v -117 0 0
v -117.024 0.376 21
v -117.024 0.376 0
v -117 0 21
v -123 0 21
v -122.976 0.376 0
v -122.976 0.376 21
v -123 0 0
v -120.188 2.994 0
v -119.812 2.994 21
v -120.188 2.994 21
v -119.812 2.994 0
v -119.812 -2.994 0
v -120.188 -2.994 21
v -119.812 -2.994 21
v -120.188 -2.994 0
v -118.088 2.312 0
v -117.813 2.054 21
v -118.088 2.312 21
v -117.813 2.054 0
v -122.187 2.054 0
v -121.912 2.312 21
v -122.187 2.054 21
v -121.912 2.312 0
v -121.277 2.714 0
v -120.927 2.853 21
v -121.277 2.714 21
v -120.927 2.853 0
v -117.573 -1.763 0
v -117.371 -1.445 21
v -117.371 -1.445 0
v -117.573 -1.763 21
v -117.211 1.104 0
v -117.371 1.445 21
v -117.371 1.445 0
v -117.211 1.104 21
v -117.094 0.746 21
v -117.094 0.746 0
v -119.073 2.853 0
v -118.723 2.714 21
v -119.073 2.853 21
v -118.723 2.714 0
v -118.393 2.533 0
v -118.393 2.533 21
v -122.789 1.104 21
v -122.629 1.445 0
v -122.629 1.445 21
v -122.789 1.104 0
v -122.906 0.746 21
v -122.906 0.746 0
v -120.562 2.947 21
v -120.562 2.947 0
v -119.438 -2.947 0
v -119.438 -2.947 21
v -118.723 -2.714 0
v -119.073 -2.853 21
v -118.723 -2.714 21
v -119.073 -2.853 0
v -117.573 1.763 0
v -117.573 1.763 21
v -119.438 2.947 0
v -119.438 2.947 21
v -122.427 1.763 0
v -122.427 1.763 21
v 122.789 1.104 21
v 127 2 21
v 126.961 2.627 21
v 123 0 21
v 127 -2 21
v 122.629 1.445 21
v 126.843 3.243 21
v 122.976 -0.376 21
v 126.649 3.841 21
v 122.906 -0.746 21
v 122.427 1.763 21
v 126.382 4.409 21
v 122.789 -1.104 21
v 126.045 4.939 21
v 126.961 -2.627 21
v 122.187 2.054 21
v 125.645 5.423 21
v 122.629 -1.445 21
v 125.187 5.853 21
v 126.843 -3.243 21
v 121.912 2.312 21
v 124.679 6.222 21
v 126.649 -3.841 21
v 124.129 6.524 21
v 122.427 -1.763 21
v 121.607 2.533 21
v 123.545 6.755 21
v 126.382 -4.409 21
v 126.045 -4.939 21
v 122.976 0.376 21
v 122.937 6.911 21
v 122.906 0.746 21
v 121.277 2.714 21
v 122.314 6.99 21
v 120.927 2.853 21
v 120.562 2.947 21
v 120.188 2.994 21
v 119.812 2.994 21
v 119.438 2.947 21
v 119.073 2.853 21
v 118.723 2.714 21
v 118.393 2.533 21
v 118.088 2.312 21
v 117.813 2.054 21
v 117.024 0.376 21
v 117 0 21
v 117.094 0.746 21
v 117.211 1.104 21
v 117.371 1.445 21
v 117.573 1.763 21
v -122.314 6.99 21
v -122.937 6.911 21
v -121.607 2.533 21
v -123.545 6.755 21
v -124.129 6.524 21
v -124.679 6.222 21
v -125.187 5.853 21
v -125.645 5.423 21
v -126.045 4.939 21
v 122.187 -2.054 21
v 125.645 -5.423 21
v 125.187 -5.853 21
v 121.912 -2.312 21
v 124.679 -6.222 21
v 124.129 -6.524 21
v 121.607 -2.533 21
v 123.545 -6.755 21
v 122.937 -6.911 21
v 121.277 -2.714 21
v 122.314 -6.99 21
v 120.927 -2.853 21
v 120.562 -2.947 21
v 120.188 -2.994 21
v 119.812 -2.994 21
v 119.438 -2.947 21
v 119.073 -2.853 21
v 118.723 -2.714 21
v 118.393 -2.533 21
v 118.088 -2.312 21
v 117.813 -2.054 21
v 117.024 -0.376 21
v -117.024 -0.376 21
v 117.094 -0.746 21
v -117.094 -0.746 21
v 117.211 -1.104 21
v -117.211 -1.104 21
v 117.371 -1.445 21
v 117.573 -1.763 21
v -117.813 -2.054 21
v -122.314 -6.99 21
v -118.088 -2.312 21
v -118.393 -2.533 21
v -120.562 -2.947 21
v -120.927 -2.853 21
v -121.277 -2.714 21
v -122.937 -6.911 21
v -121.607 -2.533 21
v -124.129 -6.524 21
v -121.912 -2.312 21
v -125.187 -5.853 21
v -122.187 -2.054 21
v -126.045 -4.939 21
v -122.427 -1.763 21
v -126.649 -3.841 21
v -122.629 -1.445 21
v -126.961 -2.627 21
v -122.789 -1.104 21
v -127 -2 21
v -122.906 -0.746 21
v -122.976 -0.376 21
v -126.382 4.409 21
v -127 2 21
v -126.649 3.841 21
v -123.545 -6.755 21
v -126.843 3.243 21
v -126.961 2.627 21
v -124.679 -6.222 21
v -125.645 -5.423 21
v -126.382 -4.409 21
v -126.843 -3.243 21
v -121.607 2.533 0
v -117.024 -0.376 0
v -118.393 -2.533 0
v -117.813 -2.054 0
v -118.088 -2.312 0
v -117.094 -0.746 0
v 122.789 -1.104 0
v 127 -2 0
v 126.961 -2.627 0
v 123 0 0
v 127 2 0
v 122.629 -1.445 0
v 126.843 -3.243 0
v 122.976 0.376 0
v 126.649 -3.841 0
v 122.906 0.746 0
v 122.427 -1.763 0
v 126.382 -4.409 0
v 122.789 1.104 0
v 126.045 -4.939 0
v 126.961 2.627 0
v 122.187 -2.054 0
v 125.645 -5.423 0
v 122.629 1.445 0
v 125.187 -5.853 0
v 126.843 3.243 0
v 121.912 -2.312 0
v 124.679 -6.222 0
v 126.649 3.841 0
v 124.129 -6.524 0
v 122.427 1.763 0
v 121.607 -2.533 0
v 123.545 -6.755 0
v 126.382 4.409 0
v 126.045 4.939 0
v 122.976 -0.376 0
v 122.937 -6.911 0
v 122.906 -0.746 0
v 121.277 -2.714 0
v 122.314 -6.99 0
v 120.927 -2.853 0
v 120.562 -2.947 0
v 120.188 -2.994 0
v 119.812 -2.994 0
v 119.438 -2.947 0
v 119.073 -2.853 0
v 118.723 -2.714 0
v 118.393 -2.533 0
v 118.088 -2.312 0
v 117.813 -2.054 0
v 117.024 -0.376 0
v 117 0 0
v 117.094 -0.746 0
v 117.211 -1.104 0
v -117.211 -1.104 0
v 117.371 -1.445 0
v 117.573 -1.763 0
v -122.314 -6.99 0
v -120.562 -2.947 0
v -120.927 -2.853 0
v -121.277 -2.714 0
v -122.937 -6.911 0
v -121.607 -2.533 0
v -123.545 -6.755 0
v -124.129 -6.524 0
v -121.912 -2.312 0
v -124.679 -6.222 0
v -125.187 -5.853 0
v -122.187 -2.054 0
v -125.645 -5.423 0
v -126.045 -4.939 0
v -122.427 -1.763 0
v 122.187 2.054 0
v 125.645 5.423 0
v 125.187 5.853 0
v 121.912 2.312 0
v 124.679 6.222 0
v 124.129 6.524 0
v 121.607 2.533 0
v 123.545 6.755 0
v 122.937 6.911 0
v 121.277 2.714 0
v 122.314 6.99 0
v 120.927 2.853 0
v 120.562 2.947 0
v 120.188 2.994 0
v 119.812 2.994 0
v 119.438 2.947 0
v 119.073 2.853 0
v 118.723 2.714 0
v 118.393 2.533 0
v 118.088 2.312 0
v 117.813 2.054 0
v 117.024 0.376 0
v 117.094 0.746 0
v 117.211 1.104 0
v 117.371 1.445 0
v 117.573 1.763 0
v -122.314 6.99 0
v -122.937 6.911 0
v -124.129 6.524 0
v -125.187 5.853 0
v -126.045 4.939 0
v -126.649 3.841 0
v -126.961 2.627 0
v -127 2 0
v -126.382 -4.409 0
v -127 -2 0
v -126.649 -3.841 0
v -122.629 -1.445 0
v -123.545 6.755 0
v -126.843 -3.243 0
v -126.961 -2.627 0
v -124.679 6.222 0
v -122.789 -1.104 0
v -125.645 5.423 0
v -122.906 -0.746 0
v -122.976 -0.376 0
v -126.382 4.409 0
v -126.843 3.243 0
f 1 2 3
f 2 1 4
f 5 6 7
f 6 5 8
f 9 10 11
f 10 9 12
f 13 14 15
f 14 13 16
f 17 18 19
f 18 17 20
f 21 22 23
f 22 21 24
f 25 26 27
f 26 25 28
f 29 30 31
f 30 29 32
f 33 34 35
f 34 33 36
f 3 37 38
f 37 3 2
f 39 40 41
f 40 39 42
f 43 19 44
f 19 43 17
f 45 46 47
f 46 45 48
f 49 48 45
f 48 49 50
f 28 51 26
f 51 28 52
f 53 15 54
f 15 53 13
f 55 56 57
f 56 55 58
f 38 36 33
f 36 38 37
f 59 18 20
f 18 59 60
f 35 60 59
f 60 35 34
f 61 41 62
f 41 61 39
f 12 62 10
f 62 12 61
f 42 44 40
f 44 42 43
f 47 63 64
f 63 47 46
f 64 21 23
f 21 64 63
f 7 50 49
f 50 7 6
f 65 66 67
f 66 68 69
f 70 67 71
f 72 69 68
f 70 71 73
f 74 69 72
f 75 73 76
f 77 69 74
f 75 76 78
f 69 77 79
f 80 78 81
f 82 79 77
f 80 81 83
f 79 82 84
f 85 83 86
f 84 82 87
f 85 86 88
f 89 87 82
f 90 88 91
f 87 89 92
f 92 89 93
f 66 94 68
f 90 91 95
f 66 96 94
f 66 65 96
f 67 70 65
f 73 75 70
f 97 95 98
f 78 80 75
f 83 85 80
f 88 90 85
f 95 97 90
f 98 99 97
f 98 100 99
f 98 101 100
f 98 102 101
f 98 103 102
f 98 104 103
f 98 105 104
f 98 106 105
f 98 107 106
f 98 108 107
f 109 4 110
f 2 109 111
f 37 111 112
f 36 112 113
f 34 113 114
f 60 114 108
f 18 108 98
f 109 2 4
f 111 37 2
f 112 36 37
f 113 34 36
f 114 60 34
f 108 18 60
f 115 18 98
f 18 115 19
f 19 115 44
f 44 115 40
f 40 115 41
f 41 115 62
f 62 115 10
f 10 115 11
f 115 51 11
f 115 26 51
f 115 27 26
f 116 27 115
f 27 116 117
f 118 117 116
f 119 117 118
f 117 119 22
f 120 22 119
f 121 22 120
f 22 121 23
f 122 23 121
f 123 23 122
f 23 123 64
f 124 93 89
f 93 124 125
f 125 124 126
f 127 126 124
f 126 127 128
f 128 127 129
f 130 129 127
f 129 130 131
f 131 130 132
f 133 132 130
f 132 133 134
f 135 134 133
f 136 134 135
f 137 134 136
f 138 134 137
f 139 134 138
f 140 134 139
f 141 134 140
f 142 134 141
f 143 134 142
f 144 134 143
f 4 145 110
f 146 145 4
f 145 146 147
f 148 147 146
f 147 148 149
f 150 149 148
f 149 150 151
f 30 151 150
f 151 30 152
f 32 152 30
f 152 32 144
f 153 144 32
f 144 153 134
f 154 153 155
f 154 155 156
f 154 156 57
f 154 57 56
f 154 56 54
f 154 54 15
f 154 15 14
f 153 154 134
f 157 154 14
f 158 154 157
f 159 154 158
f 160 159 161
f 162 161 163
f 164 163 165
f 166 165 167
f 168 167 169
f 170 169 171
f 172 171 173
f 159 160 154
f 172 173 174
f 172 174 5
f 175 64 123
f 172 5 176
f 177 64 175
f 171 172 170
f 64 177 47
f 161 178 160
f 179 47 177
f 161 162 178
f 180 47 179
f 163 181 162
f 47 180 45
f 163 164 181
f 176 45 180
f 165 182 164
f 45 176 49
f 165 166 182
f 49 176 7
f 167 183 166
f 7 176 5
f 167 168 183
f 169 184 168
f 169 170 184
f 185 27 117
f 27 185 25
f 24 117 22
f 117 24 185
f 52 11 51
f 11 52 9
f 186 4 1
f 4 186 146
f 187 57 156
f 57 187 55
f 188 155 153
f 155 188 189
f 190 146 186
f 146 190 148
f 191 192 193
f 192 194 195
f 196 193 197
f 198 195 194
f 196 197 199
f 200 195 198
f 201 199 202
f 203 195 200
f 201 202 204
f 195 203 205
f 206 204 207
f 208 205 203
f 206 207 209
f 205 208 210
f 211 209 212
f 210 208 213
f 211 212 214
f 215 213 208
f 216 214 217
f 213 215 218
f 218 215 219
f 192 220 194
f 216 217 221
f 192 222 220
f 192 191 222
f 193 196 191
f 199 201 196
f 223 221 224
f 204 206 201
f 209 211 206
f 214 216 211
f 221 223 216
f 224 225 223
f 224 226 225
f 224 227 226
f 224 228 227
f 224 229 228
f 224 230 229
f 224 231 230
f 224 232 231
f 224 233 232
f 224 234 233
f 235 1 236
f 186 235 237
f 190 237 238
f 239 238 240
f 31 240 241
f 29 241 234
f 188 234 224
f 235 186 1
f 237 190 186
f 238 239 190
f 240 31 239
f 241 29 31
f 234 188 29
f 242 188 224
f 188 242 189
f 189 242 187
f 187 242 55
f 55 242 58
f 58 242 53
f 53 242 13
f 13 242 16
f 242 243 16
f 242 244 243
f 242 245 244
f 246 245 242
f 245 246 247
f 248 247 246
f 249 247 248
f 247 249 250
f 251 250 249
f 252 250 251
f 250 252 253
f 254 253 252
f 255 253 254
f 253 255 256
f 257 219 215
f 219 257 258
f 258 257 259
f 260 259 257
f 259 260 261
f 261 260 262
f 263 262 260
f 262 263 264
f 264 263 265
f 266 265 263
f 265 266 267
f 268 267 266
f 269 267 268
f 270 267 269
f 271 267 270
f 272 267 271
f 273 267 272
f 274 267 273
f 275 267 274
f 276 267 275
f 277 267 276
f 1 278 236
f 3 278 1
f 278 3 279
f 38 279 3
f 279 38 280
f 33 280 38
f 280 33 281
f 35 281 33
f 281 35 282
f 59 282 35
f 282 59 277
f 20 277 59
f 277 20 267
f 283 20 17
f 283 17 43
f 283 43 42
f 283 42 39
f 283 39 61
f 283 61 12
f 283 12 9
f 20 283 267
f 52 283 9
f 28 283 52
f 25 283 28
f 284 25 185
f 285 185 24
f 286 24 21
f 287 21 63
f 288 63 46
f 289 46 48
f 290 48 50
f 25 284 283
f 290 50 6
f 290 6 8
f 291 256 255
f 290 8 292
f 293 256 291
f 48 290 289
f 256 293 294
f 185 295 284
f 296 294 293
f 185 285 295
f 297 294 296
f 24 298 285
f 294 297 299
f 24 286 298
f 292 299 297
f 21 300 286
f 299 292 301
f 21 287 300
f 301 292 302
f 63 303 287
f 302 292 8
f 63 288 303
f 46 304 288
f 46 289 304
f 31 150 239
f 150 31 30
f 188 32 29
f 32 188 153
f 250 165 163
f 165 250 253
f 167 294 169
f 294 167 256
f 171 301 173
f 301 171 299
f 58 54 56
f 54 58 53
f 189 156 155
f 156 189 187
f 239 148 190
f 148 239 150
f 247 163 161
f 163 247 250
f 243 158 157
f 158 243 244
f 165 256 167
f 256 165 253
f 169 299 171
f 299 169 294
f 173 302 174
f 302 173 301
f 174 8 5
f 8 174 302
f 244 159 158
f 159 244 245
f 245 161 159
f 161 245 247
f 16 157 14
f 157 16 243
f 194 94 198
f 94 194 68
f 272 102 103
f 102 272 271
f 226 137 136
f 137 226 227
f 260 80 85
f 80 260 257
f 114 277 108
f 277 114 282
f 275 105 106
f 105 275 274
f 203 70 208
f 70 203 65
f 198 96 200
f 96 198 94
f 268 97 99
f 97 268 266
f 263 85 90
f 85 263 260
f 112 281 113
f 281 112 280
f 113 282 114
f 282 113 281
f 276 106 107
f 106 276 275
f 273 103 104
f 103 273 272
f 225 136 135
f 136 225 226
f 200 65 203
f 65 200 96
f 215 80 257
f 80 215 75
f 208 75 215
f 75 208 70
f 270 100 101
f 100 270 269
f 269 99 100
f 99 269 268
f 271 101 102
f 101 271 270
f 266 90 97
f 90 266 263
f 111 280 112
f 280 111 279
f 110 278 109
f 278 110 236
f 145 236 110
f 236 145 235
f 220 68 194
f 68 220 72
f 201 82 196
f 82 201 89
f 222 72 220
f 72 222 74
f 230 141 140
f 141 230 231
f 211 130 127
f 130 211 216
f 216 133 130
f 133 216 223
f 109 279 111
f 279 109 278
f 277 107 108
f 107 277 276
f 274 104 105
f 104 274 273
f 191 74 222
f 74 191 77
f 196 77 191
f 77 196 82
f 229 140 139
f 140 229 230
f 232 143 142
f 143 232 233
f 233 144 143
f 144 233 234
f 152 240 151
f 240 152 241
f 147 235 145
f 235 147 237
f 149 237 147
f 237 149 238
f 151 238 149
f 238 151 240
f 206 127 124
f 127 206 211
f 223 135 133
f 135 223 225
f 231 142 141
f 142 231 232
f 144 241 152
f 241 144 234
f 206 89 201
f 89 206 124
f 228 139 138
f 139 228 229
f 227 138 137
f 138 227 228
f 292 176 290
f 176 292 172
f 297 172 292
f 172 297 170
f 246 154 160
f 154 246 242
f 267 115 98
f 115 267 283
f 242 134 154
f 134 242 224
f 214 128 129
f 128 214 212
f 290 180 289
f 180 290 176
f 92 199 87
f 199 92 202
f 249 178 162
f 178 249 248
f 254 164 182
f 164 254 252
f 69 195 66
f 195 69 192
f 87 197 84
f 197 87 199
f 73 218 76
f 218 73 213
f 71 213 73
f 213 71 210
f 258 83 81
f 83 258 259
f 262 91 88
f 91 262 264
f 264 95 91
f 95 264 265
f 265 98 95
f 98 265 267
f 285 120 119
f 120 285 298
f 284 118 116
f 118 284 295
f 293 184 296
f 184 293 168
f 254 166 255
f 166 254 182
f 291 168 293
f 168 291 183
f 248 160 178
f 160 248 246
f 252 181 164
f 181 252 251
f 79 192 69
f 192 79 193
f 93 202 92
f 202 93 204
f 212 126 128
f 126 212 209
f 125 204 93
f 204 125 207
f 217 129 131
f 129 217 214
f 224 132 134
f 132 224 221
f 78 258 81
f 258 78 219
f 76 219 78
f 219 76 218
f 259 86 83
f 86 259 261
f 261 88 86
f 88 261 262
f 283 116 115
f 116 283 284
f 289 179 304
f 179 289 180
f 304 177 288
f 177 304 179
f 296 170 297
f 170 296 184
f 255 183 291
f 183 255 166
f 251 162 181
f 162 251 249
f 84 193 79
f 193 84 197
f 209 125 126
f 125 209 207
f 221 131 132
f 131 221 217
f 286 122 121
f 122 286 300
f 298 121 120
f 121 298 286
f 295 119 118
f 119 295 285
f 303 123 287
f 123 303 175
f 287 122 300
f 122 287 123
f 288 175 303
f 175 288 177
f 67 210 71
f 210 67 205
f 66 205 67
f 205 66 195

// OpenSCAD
$fn = 50;


difference() {
	union() {
		hull() {
			translate(v = [-122.0000000000, 2.0000000000, 0]) {
				cylinder(h = 21, r = 5);
			}
			translate(v = [122.0000000000, 2.0000000000, 0]) {
				cylinder(h = 21, r = 5);
			}
			translate(v = [-122.0000000000, -2.0000000000, 0]) {
				cylinder(h = 21, r = 5);
			}
			translate(v = [122.0000000000, -2.0000000000, 0]) {
				cylinder(h = 21, r = 5);
			}
		}
	}
	union() {
		translate(v = [-120.0000000000, 0.0000000000, 0]) {
			cylinder(h = 21, r = 3.0000000000);
		}
		translate(v = [120.0000000000, 0.0000000000, 0]) {
			cylinder(h = 21, r = 3.0000000000);
		}
		translate(v = [-120.0000000000, 0.0000000000, 0]) {
			cylinder(h = 21, r = 1.5000000000);
		}
		translate(v = [120.0000000000, 0.0000000000, 0]) {
			cylinder(h = 21, r = 1.5000000000);
		}
		translate(v = [-120.0000000000, 0.0000000000, 0]) {
			cylinder(h = 21, r = 1.5000000000);
		}
		translate(v = [120.0000000000, 0.0000000000, 0]) {
			cylinder(h = 21, r = 1.5000000000);
		}
		translate(v = [-120.0000000000, 0.0000000000, 0]) {
			cylinder(h = 21, r = 1.5000000000);
		}
		translate(v = [120.0000000000, 0.0000000000, 0]) {
			cylinder(h = 21, r = 1.5000000000);
		}
	}
}
